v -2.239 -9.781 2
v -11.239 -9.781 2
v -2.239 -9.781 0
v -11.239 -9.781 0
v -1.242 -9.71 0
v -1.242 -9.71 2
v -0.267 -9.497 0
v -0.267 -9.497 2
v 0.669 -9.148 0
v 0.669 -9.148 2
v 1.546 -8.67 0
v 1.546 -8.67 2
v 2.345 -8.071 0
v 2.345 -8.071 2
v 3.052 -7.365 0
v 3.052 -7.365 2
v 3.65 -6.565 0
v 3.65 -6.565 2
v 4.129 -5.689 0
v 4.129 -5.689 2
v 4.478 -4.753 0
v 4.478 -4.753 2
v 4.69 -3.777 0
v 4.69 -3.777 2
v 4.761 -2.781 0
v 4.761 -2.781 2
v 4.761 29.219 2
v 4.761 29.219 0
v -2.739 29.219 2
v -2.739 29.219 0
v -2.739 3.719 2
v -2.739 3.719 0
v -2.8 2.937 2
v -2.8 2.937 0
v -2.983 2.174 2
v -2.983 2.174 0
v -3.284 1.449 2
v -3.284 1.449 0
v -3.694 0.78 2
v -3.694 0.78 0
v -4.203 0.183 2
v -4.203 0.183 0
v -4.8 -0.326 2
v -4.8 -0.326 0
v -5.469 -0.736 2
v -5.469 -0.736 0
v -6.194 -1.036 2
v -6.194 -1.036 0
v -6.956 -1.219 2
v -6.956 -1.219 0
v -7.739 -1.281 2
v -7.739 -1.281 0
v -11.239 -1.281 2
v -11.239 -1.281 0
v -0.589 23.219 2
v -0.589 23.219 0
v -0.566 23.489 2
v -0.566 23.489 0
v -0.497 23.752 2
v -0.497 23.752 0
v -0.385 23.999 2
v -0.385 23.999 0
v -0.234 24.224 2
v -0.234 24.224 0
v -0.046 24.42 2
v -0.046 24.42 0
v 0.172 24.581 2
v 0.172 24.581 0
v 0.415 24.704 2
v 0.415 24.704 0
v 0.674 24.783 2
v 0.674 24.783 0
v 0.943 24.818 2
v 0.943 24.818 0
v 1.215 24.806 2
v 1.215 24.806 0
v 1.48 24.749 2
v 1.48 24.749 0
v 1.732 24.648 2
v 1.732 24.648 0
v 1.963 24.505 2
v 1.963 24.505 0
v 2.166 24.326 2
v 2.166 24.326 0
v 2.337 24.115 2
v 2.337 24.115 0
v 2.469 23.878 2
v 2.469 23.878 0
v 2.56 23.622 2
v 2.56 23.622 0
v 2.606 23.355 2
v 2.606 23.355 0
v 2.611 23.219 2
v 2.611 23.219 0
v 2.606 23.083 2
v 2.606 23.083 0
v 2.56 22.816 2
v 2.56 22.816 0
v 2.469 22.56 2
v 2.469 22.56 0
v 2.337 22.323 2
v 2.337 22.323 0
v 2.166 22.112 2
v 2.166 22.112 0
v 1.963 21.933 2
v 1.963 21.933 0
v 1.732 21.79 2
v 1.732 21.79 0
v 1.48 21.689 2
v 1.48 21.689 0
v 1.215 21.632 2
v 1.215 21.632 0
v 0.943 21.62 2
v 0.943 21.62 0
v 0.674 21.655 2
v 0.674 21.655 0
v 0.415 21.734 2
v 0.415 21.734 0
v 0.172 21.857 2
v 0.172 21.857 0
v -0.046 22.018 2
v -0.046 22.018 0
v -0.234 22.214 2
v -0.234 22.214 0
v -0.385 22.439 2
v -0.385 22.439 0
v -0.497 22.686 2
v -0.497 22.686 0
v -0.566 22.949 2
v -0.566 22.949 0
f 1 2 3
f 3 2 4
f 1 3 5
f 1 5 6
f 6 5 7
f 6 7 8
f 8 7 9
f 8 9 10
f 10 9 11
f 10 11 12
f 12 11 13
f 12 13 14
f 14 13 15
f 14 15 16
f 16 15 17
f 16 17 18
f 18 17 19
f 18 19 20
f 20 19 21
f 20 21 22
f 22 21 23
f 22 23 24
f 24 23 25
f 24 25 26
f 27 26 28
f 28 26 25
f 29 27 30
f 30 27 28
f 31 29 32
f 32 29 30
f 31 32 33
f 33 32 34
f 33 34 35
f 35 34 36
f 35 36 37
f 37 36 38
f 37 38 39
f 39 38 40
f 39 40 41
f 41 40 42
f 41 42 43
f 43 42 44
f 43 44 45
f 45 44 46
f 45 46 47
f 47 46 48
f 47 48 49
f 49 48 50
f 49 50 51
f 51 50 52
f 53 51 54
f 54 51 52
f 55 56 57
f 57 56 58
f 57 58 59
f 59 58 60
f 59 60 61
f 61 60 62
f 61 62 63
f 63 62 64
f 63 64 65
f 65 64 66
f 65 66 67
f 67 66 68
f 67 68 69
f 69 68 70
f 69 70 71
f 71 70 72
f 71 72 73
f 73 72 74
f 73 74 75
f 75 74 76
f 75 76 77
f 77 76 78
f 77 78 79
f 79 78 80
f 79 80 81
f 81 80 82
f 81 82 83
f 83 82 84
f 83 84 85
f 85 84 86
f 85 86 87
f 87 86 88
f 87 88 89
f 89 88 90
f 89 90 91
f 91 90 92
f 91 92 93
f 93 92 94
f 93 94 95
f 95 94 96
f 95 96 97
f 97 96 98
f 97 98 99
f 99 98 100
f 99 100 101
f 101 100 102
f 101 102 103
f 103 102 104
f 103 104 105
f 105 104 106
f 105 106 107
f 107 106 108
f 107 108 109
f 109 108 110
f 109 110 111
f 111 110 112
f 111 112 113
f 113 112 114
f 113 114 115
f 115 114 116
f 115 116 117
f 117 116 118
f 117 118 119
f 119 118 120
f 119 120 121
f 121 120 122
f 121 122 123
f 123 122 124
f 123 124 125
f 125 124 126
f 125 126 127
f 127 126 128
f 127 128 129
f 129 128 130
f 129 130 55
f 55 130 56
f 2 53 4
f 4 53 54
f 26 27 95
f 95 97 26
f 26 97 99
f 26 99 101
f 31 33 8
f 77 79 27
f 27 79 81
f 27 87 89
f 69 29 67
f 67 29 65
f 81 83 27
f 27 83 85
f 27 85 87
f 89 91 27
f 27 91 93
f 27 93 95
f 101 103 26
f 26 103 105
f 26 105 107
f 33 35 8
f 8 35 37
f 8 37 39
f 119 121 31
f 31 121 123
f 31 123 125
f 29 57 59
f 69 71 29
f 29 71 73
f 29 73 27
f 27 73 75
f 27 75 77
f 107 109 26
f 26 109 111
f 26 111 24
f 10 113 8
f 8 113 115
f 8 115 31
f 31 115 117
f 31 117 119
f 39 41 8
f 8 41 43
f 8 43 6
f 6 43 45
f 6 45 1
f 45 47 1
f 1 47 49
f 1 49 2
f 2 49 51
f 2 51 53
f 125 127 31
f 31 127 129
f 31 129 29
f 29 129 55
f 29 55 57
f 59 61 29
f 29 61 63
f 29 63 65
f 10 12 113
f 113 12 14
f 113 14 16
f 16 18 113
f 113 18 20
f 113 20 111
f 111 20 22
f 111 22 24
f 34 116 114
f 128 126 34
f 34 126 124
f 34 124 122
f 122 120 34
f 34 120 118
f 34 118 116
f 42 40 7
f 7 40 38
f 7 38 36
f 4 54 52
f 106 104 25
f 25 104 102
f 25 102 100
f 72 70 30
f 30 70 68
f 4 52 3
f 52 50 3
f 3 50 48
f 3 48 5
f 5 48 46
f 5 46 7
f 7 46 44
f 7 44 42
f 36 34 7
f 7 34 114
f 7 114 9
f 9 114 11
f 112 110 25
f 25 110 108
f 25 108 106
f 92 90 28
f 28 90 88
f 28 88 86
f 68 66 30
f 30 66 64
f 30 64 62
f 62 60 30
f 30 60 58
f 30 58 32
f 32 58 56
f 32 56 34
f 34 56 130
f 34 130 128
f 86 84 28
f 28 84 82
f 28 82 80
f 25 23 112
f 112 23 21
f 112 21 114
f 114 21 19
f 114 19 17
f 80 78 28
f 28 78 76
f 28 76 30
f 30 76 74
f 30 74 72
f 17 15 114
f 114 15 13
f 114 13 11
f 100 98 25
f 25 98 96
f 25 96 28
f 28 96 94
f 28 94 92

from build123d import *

# Parameters (mm, degrees)
SKETCH_1_R      = 1.6
EXTRUDE_1_DEPTH = 2


with BuildPart() as part:
    # 草图1 → 凸台-拉伸1 (new body)
    with BuildSketch(Plane.XY):
        with BuildLine():
            Line((-7.738670695, -1.280966767), (-11.238670695, -1.280966767))
            Line((-11.238670695, -1.280966767), (-11.238670695, -9.780966767))
            Line((-11.238670695, -9.780966767), (-2.738670695, -9.780966767))
            Line((-2.738670695, -9.780966767), (-2.238670695, -9.780966767))
            ThreePointArc((-2.238670695, -9.780966767), (2.711076773, -7.730714236), (4.761329305, -2.780966767))
            Line((4.761329305, -2.780966767), (4.761329305, -1.280966767))
            Line((4.761329305, -1.280966767), (4.761329305, 29.219033233))
            Line((4.761329305, 29.219033233), (-2.738670695, 29.219033233))
            Line((-2.738670695, 29.219033233), (-2.738670695, 3.719033233))
            ThreePointArc((-2.738670695, 3.719033233), (-4.203136789, 0.183499327), (-7.738670695, -1.280966767))
        make_face()
        with Locations((1.011329305, 23.219033233)):
            Circle(SKETCH_1_R, mode=Mode.SUBTRACT)
    extrude(amount=EXTRUDE_1_DEPTH)


solid = part.part
